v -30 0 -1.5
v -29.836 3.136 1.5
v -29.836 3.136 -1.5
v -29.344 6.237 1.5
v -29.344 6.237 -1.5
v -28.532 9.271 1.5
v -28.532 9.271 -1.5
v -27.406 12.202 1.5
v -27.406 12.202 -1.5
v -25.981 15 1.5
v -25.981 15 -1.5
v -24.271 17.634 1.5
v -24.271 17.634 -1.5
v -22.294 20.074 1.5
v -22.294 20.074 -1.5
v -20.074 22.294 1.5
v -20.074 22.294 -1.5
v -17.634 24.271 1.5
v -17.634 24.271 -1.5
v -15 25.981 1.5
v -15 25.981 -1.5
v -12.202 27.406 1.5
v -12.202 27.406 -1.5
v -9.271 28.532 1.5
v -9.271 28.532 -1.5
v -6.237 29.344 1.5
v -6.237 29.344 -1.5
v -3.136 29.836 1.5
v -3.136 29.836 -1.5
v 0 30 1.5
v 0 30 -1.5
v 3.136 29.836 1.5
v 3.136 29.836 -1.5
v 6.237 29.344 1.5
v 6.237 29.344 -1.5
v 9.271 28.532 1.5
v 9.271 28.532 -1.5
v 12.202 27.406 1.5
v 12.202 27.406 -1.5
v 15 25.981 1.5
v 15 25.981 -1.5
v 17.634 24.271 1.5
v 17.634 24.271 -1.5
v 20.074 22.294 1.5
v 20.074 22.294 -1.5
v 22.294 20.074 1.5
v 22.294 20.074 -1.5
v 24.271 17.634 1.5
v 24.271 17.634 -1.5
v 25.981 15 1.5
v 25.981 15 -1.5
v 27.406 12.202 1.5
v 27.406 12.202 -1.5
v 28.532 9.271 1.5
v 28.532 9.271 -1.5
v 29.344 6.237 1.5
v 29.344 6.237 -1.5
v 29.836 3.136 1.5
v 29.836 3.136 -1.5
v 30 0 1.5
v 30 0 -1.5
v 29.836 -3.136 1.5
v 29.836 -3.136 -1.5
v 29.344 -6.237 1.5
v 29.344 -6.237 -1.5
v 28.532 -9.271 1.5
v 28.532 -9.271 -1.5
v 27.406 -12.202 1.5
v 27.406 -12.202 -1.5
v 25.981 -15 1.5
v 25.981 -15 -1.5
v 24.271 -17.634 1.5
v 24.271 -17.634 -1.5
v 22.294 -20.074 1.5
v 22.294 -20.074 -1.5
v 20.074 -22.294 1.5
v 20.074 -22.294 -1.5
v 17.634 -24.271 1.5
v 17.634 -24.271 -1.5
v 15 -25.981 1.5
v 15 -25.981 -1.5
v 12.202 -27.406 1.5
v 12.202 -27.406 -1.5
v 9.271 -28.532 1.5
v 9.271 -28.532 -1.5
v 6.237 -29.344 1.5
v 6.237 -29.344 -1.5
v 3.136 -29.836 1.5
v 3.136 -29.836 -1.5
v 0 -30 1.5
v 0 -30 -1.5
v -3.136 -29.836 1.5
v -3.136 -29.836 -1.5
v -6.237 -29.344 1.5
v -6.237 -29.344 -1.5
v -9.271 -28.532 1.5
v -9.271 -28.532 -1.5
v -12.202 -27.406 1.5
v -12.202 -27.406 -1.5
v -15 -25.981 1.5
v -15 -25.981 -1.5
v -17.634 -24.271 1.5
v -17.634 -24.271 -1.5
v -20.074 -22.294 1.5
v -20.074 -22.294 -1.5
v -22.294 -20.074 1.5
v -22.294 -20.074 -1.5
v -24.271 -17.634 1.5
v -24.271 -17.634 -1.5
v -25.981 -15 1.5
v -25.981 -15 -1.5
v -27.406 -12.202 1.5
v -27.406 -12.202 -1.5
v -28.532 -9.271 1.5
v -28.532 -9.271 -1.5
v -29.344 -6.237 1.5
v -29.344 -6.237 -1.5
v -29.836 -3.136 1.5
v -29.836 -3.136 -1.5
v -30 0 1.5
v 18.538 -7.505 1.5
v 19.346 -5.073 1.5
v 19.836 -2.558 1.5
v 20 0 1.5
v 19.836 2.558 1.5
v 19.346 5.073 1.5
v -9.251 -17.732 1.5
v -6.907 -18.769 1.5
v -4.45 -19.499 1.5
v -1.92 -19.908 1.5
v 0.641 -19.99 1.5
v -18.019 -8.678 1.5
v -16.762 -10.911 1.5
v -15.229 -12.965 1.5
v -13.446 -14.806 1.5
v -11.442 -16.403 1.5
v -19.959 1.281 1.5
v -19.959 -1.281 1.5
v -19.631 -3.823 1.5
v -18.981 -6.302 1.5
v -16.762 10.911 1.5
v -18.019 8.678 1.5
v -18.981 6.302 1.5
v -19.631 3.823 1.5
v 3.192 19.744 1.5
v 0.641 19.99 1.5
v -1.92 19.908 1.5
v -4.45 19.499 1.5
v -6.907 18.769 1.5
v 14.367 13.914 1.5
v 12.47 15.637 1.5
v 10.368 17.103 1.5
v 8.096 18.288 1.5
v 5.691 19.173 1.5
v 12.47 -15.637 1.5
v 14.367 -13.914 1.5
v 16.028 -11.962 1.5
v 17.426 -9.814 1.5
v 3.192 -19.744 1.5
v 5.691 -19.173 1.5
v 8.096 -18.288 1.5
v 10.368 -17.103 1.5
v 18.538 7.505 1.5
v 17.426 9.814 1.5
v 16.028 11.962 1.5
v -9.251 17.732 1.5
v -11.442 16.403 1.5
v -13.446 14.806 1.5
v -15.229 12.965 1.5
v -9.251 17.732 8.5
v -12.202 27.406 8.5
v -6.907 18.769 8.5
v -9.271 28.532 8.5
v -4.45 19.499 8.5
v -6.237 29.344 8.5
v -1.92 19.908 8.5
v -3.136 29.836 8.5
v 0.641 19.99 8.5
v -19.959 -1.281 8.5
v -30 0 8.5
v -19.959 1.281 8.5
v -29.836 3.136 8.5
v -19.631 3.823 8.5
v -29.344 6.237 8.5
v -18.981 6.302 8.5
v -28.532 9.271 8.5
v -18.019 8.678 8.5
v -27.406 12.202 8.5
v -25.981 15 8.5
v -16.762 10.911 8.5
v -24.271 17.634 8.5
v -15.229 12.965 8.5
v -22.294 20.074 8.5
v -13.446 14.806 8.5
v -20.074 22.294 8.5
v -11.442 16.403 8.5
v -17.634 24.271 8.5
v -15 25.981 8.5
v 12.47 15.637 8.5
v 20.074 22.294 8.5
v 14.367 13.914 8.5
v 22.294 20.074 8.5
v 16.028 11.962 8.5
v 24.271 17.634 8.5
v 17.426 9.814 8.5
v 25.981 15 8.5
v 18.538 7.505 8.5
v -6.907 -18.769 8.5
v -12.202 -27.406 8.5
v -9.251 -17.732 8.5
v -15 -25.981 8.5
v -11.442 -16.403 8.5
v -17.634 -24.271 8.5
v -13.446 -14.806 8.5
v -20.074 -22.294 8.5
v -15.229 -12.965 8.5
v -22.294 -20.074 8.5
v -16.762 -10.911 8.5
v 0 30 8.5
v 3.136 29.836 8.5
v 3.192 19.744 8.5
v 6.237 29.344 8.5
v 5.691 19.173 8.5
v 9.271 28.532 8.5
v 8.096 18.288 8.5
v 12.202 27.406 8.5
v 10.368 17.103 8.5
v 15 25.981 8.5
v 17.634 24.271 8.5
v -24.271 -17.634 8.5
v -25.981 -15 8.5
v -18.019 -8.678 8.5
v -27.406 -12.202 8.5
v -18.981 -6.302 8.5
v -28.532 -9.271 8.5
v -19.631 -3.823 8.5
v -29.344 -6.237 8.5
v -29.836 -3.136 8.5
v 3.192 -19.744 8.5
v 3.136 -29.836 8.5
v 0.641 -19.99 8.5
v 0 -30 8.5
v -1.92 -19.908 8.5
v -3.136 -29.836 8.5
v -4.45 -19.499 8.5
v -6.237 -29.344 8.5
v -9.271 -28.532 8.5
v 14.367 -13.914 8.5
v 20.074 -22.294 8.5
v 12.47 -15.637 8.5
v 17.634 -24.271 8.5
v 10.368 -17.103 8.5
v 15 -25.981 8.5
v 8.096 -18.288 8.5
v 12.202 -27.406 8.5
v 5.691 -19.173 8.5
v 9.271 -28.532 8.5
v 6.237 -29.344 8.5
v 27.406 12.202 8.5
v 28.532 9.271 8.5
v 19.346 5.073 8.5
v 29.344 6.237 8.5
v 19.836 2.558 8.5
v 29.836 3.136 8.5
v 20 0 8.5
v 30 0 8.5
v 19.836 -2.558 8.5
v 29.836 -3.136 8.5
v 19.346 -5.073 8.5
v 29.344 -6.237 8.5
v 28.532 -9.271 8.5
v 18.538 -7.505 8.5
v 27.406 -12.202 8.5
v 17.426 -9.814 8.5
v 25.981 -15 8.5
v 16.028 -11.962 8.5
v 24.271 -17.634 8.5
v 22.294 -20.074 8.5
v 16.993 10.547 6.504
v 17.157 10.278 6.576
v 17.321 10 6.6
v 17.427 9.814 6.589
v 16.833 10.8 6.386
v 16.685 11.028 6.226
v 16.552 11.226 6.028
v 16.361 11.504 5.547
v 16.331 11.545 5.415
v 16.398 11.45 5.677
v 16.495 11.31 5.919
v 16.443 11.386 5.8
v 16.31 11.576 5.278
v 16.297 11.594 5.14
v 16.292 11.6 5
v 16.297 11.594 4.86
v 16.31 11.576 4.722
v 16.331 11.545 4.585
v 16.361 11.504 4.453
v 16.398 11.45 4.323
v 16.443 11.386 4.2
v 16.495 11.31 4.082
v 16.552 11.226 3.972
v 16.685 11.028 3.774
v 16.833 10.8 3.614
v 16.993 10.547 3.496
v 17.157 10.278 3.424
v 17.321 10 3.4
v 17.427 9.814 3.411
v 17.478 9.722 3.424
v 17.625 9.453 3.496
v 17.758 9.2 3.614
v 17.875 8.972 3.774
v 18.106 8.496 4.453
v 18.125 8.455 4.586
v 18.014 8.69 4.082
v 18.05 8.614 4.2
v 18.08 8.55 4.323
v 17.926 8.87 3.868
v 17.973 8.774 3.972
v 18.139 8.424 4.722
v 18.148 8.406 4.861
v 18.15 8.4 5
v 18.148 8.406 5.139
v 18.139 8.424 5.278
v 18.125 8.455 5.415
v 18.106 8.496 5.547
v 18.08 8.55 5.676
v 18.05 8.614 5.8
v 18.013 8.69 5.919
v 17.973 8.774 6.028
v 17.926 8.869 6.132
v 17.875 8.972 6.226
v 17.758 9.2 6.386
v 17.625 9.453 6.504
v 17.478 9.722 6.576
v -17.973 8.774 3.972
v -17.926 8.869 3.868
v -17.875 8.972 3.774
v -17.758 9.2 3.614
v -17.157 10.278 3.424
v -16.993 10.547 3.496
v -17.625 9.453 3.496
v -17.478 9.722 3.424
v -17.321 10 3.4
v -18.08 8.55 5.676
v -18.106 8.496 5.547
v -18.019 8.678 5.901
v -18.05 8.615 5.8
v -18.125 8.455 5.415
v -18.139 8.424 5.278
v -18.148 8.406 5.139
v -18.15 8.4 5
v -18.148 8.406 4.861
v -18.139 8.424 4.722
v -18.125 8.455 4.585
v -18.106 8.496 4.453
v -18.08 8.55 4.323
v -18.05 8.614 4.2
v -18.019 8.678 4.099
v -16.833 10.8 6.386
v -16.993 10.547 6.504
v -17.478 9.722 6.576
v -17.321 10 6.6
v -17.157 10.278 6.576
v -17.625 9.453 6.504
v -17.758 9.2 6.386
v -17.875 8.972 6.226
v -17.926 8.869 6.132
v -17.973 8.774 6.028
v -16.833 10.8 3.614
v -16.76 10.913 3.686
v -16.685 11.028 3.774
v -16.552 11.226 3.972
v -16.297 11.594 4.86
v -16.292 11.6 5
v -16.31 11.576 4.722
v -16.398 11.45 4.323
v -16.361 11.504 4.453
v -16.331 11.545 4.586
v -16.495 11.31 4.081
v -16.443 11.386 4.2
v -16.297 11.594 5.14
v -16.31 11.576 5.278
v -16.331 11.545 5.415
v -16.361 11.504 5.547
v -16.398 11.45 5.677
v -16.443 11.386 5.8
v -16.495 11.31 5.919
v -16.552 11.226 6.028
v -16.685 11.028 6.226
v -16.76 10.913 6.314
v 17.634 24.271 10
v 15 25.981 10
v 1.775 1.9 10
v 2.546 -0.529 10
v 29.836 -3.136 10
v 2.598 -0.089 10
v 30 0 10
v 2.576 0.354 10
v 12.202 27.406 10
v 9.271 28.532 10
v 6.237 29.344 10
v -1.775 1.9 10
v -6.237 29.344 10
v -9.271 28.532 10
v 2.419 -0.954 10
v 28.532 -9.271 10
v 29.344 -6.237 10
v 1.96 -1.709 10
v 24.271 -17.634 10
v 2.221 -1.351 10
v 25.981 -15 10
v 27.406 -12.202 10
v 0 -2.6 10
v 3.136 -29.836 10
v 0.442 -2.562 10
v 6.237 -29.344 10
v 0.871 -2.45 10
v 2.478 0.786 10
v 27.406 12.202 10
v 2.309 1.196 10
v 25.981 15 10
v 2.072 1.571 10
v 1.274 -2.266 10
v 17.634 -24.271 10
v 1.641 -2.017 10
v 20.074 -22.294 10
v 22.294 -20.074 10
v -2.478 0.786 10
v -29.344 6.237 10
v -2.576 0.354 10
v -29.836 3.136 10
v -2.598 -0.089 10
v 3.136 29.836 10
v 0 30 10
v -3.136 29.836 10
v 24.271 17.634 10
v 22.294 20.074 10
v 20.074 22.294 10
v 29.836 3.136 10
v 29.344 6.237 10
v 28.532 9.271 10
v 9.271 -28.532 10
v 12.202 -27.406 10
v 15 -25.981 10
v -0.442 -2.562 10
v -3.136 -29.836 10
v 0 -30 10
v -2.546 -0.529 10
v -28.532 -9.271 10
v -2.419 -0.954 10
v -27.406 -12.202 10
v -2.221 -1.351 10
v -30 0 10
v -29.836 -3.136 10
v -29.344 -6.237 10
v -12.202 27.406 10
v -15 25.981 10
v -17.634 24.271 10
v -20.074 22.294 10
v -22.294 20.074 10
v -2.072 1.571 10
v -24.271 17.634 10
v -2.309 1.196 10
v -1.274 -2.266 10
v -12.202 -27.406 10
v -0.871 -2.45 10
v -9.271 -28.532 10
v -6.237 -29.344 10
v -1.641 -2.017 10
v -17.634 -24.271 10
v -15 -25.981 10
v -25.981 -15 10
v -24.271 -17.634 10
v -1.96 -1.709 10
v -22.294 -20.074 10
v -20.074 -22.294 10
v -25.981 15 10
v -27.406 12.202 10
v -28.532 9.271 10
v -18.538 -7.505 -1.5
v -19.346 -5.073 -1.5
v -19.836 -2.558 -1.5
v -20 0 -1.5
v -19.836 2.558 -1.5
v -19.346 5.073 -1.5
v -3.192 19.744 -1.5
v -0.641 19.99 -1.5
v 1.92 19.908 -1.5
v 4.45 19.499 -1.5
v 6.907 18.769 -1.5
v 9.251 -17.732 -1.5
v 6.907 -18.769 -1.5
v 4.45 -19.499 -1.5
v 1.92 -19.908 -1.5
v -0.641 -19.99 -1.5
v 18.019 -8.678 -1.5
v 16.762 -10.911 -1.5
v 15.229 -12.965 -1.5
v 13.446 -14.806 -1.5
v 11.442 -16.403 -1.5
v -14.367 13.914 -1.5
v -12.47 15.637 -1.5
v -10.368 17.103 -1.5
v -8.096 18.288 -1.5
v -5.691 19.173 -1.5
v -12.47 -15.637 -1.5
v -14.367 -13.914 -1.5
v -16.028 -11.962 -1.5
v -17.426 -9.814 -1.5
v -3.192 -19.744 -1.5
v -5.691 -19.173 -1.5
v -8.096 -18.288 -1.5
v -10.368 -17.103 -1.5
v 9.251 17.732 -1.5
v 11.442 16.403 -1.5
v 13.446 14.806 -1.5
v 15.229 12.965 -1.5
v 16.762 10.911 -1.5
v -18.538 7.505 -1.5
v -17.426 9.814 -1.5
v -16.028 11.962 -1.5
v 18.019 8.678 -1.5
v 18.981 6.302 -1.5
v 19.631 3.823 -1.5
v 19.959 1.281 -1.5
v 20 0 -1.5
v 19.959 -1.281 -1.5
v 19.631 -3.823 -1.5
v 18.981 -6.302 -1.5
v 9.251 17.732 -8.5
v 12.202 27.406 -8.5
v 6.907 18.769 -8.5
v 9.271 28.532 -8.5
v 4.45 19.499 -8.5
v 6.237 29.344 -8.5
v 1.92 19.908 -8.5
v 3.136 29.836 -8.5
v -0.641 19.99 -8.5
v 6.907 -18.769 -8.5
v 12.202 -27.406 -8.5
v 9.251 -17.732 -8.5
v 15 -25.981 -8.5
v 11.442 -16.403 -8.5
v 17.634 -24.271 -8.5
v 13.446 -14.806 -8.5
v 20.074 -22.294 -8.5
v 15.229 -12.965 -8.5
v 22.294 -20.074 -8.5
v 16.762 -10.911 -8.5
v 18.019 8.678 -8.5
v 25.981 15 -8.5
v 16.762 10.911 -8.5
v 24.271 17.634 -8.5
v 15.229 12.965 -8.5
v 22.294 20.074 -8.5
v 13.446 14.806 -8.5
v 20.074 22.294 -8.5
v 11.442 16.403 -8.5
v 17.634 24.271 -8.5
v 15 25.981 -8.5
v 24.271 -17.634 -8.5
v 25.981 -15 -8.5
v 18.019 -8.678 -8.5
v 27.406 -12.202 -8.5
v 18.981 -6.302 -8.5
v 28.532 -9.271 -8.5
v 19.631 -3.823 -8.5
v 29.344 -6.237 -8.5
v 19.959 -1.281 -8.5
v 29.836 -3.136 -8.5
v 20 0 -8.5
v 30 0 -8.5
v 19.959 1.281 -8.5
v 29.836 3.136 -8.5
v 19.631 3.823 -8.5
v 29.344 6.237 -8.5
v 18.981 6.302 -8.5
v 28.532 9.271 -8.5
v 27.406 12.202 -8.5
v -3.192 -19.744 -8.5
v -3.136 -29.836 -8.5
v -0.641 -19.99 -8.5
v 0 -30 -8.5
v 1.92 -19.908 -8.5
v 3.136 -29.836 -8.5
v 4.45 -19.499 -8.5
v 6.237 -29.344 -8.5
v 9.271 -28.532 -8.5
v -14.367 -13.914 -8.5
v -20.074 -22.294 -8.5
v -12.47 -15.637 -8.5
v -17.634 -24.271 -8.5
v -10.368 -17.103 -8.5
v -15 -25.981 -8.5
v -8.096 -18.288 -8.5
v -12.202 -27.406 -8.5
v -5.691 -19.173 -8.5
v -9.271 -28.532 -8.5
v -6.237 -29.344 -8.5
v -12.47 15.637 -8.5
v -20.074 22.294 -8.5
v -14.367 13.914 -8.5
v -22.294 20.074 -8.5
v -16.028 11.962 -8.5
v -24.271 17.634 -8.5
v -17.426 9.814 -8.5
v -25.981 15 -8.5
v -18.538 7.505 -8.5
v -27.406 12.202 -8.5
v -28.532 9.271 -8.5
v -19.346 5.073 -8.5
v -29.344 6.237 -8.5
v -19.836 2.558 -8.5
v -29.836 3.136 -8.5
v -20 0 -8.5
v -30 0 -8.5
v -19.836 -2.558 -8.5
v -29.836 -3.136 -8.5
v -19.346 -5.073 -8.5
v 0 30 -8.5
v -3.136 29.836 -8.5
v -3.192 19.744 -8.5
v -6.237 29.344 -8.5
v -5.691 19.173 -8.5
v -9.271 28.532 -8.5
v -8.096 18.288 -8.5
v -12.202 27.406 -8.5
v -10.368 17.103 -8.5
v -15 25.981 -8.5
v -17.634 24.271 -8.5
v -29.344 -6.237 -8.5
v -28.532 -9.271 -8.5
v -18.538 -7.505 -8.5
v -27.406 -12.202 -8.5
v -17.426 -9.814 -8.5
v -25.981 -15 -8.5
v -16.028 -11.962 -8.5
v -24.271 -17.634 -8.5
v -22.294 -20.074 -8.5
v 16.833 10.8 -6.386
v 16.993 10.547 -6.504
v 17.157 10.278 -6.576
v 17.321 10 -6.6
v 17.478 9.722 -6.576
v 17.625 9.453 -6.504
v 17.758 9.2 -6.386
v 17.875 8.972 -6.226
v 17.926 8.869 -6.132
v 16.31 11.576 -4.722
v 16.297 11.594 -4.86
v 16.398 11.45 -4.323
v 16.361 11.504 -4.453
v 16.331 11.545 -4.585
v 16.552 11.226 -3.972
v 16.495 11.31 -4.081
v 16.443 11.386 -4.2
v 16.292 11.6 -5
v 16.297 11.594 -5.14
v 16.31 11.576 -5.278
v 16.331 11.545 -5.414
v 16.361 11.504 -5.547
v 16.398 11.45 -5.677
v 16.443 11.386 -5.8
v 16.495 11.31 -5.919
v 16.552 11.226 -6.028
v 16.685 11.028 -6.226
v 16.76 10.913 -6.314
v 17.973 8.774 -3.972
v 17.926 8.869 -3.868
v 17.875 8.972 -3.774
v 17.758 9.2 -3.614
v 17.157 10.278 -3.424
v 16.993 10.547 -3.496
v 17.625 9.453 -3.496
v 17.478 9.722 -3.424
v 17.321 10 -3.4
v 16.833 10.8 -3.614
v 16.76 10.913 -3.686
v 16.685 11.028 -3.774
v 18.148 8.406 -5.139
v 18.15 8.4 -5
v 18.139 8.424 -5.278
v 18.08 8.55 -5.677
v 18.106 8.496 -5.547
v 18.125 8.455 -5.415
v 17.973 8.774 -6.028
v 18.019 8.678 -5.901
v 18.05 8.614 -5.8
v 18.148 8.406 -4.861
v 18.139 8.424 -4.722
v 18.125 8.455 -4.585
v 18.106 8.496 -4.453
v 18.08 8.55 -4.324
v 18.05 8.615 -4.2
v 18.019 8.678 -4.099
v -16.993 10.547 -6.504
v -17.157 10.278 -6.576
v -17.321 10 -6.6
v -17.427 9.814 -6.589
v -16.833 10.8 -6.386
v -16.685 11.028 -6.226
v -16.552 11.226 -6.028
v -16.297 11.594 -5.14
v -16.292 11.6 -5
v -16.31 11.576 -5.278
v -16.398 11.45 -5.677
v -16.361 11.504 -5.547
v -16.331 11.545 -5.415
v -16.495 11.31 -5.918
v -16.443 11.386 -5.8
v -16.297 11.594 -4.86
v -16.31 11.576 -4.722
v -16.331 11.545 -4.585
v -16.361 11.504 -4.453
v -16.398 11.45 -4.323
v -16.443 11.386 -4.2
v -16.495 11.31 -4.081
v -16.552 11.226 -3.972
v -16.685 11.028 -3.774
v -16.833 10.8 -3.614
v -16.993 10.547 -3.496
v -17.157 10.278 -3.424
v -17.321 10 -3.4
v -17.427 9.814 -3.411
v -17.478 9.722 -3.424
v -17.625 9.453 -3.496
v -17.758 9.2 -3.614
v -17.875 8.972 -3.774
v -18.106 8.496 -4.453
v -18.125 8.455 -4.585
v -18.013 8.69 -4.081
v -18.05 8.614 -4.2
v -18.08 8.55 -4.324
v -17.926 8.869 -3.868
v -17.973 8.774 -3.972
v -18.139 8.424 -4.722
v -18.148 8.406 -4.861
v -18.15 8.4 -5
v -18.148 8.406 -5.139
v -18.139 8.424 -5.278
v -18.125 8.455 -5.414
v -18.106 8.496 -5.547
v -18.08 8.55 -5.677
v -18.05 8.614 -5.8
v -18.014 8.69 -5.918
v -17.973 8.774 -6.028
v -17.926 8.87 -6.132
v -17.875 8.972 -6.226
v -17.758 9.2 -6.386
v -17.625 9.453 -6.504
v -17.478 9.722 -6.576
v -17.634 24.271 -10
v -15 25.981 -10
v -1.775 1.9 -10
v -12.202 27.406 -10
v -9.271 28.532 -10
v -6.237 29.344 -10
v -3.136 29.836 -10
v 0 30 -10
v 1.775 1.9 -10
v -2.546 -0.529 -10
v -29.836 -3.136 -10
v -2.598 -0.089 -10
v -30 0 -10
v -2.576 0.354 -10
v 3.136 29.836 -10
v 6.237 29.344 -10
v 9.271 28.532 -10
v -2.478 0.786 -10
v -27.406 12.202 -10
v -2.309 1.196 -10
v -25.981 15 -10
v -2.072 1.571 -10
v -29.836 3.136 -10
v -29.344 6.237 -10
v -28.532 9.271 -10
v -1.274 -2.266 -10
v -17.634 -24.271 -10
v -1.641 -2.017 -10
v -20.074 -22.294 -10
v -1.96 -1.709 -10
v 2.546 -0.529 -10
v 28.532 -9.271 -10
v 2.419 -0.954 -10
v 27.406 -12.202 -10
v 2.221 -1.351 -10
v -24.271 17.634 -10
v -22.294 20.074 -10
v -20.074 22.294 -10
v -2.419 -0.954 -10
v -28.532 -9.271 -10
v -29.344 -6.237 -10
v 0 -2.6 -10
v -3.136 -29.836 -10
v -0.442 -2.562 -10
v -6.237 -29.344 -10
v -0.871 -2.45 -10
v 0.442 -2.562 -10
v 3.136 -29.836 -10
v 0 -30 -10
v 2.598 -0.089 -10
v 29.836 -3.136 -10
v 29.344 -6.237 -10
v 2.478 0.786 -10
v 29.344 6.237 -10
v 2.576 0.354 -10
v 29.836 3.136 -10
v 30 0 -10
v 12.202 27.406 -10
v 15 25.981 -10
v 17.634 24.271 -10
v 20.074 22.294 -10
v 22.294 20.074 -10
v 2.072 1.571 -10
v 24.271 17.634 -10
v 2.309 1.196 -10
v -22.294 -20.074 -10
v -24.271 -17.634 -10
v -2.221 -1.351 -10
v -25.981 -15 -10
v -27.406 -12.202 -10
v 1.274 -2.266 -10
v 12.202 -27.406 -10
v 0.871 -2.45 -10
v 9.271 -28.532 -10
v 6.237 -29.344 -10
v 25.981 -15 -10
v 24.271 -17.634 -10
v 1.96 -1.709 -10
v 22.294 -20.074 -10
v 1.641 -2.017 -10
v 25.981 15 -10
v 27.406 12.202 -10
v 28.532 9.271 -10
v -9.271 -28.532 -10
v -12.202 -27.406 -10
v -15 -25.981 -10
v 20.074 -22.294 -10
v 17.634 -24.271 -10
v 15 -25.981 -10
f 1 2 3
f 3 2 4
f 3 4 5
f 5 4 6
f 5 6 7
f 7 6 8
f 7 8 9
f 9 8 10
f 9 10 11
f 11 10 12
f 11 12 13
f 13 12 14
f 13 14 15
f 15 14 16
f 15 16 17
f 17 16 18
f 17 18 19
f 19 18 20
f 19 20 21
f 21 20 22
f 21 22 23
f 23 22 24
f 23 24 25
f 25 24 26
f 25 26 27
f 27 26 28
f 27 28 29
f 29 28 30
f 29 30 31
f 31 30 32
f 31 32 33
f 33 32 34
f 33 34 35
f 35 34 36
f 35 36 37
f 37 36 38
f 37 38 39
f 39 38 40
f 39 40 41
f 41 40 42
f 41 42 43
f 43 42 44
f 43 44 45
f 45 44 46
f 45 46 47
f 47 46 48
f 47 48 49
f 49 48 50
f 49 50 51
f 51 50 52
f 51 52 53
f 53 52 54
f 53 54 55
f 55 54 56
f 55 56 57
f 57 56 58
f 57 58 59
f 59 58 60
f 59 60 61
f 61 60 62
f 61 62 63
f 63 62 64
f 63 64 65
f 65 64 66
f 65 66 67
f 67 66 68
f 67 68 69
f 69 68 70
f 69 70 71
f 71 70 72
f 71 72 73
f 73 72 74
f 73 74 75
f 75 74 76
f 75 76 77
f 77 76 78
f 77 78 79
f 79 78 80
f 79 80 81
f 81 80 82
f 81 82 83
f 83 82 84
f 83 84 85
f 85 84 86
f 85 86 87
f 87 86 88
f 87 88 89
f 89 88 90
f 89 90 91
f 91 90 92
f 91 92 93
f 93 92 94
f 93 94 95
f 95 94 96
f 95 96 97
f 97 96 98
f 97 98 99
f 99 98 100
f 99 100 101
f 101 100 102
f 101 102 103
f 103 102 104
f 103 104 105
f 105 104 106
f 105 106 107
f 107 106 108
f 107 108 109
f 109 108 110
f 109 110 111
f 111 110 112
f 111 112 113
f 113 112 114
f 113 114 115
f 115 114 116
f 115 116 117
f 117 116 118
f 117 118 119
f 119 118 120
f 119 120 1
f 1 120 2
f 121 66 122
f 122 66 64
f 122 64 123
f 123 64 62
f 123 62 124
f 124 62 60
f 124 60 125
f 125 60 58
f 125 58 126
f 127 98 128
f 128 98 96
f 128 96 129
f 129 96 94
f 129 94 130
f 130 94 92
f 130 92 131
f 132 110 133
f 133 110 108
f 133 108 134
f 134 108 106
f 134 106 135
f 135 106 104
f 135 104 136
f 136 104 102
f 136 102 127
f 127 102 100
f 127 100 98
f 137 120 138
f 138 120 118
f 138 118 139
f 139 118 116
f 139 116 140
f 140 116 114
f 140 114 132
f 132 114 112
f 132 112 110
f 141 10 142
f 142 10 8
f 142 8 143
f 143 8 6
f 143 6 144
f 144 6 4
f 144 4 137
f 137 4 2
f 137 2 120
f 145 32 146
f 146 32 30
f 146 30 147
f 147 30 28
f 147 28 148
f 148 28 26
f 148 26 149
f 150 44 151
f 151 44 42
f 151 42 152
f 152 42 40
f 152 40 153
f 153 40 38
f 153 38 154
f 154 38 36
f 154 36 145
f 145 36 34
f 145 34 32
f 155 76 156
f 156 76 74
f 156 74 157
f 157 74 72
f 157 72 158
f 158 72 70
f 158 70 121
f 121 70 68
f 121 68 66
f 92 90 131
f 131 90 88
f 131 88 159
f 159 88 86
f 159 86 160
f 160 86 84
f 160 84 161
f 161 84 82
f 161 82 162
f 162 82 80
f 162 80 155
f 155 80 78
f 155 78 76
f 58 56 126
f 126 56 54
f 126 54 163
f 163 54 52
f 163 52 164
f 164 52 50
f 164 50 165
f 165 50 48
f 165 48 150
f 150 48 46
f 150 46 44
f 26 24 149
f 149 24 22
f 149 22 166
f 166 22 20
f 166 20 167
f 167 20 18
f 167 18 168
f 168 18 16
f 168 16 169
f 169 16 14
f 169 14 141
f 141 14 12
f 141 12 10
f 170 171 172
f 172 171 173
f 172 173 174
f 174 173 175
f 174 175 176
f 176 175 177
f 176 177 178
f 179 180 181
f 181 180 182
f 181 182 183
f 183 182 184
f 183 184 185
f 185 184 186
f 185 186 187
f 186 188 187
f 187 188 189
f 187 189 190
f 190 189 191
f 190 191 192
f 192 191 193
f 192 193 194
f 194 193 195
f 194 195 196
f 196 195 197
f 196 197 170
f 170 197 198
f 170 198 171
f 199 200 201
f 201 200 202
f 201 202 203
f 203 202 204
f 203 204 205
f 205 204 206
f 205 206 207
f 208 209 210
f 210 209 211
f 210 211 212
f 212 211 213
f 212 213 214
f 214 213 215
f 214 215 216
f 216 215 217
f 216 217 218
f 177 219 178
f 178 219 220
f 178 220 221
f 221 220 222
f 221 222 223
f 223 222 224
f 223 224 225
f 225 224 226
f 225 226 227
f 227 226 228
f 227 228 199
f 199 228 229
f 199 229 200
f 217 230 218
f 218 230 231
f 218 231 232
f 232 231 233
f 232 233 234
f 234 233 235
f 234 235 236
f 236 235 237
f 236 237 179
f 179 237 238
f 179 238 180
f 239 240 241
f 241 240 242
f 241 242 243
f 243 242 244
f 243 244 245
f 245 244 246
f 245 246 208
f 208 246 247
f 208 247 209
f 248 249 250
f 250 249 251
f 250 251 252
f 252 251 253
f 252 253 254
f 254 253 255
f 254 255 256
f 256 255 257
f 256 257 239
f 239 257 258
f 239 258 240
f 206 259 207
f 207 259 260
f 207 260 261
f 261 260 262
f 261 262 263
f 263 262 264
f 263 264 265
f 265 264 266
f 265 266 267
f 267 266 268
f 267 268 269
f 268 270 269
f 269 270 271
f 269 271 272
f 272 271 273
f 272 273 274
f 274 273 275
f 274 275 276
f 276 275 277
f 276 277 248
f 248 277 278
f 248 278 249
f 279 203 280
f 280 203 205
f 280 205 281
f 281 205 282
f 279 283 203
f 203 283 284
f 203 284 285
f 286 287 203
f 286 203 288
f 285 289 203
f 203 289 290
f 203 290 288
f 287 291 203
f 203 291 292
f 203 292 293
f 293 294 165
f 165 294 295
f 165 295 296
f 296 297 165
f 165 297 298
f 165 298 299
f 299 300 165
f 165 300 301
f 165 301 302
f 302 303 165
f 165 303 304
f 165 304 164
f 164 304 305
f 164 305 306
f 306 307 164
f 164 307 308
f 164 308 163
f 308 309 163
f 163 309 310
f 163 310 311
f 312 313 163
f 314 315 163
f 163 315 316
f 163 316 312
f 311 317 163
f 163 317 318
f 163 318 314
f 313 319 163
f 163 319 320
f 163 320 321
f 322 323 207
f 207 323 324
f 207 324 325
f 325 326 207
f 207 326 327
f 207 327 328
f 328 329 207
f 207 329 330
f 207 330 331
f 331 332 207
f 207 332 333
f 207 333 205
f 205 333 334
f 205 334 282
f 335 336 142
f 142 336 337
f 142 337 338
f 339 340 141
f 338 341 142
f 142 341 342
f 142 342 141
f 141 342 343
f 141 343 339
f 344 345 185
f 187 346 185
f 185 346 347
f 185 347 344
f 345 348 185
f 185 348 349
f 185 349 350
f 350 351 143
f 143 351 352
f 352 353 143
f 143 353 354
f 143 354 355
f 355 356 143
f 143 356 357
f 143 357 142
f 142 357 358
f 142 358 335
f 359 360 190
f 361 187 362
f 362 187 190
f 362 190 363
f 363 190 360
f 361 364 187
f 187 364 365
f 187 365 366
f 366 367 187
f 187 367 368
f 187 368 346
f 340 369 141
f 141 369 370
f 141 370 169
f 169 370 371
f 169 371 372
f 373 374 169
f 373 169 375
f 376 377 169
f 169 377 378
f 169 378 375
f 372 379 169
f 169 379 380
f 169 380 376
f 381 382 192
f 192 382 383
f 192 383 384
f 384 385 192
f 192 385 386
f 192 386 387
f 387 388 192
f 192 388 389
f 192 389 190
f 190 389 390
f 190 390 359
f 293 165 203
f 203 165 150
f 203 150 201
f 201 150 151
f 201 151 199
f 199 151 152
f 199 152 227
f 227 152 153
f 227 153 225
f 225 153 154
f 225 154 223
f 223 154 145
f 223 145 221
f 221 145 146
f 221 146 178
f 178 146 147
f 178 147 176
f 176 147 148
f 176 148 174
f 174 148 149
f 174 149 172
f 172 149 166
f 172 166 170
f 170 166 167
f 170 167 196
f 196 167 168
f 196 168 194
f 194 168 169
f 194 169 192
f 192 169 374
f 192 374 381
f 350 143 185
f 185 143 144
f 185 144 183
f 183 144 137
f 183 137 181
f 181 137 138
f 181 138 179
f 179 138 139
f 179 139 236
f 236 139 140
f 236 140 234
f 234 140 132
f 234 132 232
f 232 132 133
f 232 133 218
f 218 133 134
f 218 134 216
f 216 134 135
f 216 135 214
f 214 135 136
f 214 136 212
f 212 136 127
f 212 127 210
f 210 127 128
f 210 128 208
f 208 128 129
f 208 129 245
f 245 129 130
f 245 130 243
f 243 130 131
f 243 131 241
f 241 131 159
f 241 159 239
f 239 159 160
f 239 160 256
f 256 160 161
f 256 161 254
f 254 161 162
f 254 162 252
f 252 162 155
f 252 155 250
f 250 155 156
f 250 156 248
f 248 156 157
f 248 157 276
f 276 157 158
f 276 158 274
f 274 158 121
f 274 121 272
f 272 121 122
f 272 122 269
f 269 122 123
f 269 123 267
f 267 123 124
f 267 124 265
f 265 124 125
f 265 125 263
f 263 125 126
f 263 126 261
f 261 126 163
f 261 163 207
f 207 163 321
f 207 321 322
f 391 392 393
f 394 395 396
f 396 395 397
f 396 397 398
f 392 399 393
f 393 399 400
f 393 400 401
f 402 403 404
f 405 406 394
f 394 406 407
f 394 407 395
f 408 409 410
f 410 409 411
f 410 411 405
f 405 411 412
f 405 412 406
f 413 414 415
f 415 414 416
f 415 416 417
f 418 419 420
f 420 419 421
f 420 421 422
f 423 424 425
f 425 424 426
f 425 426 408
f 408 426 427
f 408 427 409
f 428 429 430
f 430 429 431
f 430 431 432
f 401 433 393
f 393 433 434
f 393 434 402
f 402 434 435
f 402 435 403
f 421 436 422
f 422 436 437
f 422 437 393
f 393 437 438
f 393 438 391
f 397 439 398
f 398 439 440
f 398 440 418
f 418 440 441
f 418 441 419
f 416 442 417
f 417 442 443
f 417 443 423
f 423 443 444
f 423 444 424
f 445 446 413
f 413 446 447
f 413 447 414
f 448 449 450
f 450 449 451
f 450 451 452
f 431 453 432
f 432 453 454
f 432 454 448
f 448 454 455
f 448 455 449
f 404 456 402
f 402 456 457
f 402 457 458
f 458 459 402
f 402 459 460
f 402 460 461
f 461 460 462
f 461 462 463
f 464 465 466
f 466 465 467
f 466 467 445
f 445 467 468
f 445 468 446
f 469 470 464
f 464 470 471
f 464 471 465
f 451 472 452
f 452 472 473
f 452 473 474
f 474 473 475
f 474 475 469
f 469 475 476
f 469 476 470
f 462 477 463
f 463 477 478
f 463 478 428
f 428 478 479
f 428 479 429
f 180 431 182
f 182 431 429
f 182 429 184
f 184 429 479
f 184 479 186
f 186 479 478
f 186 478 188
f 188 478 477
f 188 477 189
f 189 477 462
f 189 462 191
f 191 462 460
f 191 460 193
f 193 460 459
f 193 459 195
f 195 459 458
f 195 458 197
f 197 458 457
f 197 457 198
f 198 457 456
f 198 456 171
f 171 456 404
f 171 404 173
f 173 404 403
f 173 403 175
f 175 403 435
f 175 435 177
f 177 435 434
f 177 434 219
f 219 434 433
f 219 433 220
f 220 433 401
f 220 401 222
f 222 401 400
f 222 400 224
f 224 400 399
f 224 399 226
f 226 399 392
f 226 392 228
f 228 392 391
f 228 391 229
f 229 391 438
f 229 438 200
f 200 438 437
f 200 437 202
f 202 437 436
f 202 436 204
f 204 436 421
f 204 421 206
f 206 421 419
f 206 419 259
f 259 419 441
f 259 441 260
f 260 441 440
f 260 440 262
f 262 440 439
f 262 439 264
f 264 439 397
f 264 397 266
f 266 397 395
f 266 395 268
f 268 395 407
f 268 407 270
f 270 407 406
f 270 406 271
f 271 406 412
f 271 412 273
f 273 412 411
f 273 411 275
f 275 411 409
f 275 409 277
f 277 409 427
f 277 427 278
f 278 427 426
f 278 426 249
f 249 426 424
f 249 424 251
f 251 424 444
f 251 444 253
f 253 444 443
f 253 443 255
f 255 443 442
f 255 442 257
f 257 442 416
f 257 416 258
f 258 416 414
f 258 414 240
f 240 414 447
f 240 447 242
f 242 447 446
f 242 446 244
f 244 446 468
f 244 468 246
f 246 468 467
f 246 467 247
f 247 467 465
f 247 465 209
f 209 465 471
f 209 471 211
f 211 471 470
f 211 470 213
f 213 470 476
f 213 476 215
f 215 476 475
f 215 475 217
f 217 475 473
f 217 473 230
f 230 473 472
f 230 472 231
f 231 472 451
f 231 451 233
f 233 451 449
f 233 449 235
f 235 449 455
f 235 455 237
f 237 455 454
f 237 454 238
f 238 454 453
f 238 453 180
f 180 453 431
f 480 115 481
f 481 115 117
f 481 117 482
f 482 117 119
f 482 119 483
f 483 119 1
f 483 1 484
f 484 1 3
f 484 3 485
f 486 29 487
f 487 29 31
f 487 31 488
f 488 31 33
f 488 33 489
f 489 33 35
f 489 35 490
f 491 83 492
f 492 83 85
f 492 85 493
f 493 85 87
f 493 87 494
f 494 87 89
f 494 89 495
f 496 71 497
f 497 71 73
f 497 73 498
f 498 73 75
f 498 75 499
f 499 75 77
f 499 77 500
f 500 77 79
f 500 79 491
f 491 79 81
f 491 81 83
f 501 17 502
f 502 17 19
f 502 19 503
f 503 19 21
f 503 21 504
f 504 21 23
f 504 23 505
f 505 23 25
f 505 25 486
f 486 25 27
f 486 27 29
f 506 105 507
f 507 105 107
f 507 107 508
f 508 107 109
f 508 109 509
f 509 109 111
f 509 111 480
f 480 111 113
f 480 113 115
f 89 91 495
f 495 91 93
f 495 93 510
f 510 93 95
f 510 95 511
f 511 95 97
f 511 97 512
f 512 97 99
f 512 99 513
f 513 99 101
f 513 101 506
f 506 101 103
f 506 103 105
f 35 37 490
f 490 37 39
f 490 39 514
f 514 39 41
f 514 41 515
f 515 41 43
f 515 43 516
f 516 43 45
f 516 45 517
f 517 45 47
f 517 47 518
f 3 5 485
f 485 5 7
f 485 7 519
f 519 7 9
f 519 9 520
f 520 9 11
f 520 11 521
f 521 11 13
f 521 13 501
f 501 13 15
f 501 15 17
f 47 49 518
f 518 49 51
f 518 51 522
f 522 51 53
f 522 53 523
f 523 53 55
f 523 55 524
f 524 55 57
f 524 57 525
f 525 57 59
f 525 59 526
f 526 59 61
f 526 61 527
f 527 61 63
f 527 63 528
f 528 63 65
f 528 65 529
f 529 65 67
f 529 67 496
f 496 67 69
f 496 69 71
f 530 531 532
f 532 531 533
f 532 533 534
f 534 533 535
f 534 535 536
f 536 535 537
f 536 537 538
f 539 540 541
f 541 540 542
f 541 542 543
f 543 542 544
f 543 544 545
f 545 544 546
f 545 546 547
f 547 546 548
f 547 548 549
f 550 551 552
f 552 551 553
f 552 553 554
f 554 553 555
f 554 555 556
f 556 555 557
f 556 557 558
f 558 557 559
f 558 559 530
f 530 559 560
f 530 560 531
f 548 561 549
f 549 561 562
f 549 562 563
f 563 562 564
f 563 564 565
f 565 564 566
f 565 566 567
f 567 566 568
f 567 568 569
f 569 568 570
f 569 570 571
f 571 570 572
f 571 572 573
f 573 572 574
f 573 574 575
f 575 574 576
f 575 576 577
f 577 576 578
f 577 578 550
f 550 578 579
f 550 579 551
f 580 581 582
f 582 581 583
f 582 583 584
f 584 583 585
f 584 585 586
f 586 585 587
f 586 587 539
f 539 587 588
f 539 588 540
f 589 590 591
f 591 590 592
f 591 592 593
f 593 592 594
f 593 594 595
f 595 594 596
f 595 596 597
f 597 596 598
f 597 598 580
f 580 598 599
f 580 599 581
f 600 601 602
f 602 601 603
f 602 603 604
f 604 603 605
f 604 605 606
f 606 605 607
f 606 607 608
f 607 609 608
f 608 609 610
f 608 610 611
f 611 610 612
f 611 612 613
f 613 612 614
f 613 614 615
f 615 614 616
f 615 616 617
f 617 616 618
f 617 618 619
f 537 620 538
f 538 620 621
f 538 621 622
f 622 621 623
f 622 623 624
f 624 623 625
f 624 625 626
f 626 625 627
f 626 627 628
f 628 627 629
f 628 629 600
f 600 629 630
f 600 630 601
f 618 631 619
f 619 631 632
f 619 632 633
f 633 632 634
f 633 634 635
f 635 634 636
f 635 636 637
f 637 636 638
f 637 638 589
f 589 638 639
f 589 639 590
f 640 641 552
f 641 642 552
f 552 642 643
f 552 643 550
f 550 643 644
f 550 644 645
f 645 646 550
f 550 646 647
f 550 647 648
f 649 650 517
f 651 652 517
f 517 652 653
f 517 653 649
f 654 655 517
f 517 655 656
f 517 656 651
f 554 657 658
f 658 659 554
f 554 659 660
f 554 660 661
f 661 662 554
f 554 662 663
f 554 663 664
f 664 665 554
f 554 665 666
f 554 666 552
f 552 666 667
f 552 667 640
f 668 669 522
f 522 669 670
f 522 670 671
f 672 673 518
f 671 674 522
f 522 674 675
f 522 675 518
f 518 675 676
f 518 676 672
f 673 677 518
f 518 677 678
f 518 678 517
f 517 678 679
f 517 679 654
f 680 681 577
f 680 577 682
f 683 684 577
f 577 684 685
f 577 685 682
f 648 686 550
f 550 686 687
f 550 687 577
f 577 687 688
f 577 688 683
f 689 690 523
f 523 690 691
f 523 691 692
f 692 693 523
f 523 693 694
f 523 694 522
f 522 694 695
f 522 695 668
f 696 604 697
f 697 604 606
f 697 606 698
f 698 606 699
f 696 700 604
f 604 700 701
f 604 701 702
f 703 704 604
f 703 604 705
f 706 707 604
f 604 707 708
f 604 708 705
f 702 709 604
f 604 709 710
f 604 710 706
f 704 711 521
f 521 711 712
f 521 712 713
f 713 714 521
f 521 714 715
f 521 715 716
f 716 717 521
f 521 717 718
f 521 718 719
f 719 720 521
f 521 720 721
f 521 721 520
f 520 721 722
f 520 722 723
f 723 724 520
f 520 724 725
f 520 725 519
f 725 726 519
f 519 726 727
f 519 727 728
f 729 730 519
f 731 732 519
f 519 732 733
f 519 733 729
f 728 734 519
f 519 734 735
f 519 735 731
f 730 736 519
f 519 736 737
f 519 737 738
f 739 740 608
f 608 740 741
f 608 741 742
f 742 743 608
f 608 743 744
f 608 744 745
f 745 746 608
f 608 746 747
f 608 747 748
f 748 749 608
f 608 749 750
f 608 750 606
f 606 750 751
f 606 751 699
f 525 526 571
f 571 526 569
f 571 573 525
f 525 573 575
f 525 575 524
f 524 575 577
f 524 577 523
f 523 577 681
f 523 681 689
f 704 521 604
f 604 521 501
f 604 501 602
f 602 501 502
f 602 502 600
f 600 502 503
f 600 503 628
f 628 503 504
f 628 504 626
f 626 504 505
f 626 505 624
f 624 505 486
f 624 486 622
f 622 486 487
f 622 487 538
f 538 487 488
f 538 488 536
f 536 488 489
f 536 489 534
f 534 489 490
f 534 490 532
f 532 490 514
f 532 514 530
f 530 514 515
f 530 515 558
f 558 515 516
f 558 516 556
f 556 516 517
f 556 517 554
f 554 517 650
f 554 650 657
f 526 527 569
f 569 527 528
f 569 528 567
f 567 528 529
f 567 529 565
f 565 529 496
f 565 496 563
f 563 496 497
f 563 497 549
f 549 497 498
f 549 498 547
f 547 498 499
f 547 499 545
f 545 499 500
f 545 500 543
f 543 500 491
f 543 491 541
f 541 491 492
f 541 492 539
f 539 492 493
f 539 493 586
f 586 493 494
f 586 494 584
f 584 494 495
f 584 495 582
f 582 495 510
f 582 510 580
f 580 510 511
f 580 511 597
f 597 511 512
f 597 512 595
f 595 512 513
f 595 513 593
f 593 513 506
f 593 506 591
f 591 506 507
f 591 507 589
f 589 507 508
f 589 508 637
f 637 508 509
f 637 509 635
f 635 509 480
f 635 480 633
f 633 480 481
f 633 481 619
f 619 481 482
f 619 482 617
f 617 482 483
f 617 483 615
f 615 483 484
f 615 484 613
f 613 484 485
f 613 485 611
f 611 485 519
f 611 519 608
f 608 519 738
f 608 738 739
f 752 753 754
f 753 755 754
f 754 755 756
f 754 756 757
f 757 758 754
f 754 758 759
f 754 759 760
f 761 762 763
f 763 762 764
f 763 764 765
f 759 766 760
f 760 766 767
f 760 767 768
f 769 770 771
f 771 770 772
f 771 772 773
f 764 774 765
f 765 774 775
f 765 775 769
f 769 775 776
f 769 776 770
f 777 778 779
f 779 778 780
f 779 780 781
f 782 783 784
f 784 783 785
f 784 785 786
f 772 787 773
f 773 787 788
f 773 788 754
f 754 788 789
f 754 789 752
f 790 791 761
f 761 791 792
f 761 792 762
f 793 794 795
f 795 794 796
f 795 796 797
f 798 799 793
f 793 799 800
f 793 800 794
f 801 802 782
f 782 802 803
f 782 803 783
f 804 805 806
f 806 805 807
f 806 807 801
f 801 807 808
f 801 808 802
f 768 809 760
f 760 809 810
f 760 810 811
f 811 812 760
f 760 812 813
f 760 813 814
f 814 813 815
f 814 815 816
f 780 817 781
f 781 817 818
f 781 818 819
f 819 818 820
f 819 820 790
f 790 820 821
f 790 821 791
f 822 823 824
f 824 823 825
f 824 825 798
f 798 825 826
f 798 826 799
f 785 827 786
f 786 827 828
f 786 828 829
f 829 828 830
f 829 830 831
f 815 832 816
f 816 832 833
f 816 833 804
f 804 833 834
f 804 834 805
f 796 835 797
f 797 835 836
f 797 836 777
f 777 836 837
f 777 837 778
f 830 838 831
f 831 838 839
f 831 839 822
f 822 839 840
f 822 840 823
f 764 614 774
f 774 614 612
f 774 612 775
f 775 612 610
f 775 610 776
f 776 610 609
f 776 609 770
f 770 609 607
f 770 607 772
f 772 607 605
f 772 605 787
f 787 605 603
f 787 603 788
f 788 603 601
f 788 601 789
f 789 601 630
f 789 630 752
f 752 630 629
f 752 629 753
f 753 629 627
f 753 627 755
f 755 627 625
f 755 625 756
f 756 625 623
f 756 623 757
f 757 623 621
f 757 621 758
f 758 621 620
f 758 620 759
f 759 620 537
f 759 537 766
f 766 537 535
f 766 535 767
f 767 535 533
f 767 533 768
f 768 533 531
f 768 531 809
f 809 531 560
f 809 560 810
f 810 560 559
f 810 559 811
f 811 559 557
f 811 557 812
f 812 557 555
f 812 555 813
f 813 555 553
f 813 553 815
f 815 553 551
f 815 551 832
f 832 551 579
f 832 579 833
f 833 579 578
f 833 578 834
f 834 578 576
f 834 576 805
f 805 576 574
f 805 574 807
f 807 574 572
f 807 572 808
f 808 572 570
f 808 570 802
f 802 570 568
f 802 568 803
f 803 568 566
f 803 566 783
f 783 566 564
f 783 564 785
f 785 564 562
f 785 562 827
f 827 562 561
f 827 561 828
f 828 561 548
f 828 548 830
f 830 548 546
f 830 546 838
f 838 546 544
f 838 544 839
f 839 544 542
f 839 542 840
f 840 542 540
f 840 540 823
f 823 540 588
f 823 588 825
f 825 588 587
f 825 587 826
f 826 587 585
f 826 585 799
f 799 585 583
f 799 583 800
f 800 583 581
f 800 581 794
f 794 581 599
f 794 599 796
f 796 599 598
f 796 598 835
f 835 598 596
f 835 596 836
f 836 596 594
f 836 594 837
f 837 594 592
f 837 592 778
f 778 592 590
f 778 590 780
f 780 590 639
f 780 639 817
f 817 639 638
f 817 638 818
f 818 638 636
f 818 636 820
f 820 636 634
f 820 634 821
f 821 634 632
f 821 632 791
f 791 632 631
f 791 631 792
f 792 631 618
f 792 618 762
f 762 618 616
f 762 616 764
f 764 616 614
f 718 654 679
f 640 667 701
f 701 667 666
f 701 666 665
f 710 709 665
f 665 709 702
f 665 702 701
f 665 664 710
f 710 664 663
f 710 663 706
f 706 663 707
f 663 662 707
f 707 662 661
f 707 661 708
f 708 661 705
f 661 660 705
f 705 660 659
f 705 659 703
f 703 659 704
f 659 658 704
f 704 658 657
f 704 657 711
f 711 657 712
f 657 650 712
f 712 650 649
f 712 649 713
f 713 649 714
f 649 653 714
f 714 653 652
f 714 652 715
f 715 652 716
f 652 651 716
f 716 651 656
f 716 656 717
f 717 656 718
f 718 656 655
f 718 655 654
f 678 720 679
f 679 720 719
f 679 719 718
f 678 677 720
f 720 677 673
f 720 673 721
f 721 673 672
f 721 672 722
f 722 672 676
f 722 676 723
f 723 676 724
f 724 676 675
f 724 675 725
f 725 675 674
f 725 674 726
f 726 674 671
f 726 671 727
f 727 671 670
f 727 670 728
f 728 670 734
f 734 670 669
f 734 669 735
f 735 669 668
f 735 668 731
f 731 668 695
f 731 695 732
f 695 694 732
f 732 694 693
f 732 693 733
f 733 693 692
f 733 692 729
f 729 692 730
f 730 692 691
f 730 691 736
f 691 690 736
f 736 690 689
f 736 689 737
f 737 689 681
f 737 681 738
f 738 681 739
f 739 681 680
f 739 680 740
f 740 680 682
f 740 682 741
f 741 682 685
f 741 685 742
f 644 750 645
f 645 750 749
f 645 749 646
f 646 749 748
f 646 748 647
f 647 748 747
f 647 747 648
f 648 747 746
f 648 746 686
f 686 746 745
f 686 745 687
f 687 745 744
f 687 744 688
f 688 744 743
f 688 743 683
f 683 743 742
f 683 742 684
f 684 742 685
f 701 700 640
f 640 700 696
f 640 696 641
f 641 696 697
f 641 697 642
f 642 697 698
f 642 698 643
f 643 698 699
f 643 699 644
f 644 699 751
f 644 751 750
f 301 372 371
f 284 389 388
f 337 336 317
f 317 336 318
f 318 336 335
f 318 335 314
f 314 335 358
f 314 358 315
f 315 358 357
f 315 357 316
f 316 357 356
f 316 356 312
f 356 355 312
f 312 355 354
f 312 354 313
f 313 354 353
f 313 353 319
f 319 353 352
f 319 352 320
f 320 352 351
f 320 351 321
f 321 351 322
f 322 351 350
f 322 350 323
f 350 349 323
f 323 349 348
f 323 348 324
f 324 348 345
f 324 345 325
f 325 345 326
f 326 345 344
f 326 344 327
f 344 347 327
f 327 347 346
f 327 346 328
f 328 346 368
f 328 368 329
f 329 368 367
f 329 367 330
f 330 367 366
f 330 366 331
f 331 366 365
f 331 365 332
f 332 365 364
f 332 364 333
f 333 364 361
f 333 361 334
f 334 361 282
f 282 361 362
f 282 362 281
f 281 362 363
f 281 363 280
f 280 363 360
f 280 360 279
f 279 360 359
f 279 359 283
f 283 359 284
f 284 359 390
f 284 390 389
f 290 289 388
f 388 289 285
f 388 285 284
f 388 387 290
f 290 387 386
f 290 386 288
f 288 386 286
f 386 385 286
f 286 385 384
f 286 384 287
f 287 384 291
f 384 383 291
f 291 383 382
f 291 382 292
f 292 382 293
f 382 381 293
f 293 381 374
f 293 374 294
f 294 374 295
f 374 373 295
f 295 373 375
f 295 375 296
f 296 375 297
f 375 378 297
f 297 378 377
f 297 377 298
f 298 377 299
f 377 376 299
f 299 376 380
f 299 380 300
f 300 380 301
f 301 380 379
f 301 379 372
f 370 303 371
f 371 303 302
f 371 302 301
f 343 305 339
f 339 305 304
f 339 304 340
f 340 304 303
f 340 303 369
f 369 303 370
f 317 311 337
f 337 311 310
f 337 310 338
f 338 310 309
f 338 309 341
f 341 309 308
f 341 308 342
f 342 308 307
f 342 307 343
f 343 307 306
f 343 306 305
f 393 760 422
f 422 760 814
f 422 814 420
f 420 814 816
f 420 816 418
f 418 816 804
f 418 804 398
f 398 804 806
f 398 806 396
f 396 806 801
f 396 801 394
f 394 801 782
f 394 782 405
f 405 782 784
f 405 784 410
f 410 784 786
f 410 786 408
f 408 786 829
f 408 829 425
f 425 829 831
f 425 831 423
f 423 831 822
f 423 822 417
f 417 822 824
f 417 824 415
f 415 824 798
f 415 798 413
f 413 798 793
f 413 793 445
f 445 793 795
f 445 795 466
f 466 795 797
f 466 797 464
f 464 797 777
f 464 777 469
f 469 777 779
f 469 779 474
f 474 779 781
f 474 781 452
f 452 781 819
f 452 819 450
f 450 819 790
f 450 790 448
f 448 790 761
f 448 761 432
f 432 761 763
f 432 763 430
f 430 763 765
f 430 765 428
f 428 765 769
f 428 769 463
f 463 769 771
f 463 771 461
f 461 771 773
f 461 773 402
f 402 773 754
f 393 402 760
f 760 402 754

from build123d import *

# Parameters (mm, degrees)
SKETCH1_R               = 30
SKETCH1_R_2             = 20
BOSS_EXTRUDE1_DEPTH     = 10
SKETCH2_OUTSIDE_W       = 79.436
SKETCH2_OUTSIDE_H       = 79.436
SKETCH2_OUTSIDE_R       = 20
CUT_EXTRUDE1_DEPTH      = 3.5
CUT_EXTRUDE2_DEPTH      = 44.588989435
CUT_EXTRUDE2_DEPTH_BACK = 44.588989435
SKETCH3_R               = 1.6
CUT_EXTRUDE3_DEPTH      = 47.904157598
CUT_EXTRUDE3_DEPTH_BACK = 47.904157598


with BuildPart() as part:
    # Sketch1 → Boss-Extrude1 (new, symmetric)
    # profile 1 of 2: a face of its own
    with BuildSketch(Plane.XY):
        Circle(SKETCH1_R)
        Circle(SKETCH1_R_2, mode=Mode.SUBTRACT)
    # profile 2 of 2: a face of its own
    with BuildSketch(Plane.XY):
        Circle(SKETCH1_R_2)
    extrude(amount=BOSS_EXTRUDE1_DEPTH, both=True)

    # Sketch2 outside → Cut-Extrude1 (cut, symmetric)
    with BuildSketch(Plane.XY.offset(5)):
        Rectangle(SKETCH2_OUTSIDE_W, SKETCH2_OUTSIDE_H)
        Circle(SKETCH2_OUTSIDE_R, mode=Mode.SUBTRACT)
    cut_extrude1 = extrude(amount=CUT_EXTRUDE1_DEPTH, both=True, mode=Mode.SUBTRACT)

    # Mirror1: Cut-Extrude1 across plane
    add(cut_extrude1.mirror(Plane.XY), mode=Mode.SUBTRACT)

    # Sketch3 → Cut-Extrude2 (cut, two sides: drawn at the far end of the back side and taken through both)
    with BuildSketch(Plane(origin=(0, 0, 0), x_dir=(0, 0, -1), z_dir=(1, 0, 0)).offset(-CUT_EXTRUDE2_DEPTH_BACK)):
        with Locations((-5, 10)):
            Circle(SKETCH3_R)
        with Locations((5, 10)):
            Circle(SKETCH3_R)
    extrude(amount=CUT_EXTRUDE2_DEPTH + CUT_EXTRUDE2_DEPTH_BACK, mode=Mode.SUBTRACT)

    # Sketch4 → Cut-Extrude3 (cut, two sides: drawn at the far end of the back side and taken through both)
    with BuildSketch(Plane(origin=(0, 0, -10), x_dir=(-1, 0, 0), z_dir=(0, 0, -1)).offset(-CUT_EXTRUDE3_DEPTH_BACK)):
        with BuildLine():
            Line((-1.774823935, 1.9), (1.774823935, 1.9))
            ThreePointArc((1.774823935, 1.9), (0, -2.6), (-1.774823935, 1.9))
        make_face()
    extrude(amount=CUT_EXTRUDE3_DEPTH + CUT_EXTRUDE3_DEPTH_BACK, mode=Mode.SUBTRACT)


solid = part.part
